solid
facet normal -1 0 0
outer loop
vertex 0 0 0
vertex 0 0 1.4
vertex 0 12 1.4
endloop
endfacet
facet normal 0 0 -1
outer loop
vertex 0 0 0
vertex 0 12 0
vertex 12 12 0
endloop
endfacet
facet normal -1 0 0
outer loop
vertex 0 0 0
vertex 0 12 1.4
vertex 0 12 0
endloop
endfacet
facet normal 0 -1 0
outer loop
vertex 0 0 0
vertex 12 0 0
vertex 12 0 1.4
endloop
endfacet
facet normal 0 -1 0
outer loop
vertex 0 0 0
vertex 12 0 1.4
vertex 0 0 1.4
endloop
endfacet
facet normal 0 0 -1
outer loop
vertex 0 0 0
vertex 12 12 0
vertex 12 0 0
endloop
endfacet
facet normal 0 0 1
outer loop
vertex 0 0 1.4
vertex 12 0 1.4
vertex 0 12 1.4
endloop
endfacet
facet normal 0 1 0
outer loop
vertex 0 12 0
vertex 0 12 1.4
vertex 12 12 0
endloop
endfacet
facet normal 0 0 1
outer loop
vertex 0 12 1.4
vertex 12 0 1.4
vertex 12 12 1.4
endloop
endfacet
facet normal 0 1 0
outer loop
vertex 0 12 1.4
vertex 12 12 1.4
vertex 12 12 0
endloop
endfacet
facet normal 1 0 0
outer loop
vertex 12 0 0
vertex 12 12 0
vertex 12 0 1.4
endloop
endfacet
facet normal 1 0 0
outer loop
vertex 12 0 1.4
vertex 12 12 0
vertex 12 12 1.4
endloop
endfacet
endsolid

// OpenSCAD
/* Warning, this is a very basic generator with a lot of approximation 
input data : [LQFP, 2GB, 12x12x1.4mm, 80, , A, C04-21004A]
generated by com.zoubworld.electronics.cad.model3d.Basic
Date : Sun Feb 15 10:50:49 CET 2026
*/

//body
color("black")
translate([0,0,0])
cube([12.0,12.0,1.4], center=false);
